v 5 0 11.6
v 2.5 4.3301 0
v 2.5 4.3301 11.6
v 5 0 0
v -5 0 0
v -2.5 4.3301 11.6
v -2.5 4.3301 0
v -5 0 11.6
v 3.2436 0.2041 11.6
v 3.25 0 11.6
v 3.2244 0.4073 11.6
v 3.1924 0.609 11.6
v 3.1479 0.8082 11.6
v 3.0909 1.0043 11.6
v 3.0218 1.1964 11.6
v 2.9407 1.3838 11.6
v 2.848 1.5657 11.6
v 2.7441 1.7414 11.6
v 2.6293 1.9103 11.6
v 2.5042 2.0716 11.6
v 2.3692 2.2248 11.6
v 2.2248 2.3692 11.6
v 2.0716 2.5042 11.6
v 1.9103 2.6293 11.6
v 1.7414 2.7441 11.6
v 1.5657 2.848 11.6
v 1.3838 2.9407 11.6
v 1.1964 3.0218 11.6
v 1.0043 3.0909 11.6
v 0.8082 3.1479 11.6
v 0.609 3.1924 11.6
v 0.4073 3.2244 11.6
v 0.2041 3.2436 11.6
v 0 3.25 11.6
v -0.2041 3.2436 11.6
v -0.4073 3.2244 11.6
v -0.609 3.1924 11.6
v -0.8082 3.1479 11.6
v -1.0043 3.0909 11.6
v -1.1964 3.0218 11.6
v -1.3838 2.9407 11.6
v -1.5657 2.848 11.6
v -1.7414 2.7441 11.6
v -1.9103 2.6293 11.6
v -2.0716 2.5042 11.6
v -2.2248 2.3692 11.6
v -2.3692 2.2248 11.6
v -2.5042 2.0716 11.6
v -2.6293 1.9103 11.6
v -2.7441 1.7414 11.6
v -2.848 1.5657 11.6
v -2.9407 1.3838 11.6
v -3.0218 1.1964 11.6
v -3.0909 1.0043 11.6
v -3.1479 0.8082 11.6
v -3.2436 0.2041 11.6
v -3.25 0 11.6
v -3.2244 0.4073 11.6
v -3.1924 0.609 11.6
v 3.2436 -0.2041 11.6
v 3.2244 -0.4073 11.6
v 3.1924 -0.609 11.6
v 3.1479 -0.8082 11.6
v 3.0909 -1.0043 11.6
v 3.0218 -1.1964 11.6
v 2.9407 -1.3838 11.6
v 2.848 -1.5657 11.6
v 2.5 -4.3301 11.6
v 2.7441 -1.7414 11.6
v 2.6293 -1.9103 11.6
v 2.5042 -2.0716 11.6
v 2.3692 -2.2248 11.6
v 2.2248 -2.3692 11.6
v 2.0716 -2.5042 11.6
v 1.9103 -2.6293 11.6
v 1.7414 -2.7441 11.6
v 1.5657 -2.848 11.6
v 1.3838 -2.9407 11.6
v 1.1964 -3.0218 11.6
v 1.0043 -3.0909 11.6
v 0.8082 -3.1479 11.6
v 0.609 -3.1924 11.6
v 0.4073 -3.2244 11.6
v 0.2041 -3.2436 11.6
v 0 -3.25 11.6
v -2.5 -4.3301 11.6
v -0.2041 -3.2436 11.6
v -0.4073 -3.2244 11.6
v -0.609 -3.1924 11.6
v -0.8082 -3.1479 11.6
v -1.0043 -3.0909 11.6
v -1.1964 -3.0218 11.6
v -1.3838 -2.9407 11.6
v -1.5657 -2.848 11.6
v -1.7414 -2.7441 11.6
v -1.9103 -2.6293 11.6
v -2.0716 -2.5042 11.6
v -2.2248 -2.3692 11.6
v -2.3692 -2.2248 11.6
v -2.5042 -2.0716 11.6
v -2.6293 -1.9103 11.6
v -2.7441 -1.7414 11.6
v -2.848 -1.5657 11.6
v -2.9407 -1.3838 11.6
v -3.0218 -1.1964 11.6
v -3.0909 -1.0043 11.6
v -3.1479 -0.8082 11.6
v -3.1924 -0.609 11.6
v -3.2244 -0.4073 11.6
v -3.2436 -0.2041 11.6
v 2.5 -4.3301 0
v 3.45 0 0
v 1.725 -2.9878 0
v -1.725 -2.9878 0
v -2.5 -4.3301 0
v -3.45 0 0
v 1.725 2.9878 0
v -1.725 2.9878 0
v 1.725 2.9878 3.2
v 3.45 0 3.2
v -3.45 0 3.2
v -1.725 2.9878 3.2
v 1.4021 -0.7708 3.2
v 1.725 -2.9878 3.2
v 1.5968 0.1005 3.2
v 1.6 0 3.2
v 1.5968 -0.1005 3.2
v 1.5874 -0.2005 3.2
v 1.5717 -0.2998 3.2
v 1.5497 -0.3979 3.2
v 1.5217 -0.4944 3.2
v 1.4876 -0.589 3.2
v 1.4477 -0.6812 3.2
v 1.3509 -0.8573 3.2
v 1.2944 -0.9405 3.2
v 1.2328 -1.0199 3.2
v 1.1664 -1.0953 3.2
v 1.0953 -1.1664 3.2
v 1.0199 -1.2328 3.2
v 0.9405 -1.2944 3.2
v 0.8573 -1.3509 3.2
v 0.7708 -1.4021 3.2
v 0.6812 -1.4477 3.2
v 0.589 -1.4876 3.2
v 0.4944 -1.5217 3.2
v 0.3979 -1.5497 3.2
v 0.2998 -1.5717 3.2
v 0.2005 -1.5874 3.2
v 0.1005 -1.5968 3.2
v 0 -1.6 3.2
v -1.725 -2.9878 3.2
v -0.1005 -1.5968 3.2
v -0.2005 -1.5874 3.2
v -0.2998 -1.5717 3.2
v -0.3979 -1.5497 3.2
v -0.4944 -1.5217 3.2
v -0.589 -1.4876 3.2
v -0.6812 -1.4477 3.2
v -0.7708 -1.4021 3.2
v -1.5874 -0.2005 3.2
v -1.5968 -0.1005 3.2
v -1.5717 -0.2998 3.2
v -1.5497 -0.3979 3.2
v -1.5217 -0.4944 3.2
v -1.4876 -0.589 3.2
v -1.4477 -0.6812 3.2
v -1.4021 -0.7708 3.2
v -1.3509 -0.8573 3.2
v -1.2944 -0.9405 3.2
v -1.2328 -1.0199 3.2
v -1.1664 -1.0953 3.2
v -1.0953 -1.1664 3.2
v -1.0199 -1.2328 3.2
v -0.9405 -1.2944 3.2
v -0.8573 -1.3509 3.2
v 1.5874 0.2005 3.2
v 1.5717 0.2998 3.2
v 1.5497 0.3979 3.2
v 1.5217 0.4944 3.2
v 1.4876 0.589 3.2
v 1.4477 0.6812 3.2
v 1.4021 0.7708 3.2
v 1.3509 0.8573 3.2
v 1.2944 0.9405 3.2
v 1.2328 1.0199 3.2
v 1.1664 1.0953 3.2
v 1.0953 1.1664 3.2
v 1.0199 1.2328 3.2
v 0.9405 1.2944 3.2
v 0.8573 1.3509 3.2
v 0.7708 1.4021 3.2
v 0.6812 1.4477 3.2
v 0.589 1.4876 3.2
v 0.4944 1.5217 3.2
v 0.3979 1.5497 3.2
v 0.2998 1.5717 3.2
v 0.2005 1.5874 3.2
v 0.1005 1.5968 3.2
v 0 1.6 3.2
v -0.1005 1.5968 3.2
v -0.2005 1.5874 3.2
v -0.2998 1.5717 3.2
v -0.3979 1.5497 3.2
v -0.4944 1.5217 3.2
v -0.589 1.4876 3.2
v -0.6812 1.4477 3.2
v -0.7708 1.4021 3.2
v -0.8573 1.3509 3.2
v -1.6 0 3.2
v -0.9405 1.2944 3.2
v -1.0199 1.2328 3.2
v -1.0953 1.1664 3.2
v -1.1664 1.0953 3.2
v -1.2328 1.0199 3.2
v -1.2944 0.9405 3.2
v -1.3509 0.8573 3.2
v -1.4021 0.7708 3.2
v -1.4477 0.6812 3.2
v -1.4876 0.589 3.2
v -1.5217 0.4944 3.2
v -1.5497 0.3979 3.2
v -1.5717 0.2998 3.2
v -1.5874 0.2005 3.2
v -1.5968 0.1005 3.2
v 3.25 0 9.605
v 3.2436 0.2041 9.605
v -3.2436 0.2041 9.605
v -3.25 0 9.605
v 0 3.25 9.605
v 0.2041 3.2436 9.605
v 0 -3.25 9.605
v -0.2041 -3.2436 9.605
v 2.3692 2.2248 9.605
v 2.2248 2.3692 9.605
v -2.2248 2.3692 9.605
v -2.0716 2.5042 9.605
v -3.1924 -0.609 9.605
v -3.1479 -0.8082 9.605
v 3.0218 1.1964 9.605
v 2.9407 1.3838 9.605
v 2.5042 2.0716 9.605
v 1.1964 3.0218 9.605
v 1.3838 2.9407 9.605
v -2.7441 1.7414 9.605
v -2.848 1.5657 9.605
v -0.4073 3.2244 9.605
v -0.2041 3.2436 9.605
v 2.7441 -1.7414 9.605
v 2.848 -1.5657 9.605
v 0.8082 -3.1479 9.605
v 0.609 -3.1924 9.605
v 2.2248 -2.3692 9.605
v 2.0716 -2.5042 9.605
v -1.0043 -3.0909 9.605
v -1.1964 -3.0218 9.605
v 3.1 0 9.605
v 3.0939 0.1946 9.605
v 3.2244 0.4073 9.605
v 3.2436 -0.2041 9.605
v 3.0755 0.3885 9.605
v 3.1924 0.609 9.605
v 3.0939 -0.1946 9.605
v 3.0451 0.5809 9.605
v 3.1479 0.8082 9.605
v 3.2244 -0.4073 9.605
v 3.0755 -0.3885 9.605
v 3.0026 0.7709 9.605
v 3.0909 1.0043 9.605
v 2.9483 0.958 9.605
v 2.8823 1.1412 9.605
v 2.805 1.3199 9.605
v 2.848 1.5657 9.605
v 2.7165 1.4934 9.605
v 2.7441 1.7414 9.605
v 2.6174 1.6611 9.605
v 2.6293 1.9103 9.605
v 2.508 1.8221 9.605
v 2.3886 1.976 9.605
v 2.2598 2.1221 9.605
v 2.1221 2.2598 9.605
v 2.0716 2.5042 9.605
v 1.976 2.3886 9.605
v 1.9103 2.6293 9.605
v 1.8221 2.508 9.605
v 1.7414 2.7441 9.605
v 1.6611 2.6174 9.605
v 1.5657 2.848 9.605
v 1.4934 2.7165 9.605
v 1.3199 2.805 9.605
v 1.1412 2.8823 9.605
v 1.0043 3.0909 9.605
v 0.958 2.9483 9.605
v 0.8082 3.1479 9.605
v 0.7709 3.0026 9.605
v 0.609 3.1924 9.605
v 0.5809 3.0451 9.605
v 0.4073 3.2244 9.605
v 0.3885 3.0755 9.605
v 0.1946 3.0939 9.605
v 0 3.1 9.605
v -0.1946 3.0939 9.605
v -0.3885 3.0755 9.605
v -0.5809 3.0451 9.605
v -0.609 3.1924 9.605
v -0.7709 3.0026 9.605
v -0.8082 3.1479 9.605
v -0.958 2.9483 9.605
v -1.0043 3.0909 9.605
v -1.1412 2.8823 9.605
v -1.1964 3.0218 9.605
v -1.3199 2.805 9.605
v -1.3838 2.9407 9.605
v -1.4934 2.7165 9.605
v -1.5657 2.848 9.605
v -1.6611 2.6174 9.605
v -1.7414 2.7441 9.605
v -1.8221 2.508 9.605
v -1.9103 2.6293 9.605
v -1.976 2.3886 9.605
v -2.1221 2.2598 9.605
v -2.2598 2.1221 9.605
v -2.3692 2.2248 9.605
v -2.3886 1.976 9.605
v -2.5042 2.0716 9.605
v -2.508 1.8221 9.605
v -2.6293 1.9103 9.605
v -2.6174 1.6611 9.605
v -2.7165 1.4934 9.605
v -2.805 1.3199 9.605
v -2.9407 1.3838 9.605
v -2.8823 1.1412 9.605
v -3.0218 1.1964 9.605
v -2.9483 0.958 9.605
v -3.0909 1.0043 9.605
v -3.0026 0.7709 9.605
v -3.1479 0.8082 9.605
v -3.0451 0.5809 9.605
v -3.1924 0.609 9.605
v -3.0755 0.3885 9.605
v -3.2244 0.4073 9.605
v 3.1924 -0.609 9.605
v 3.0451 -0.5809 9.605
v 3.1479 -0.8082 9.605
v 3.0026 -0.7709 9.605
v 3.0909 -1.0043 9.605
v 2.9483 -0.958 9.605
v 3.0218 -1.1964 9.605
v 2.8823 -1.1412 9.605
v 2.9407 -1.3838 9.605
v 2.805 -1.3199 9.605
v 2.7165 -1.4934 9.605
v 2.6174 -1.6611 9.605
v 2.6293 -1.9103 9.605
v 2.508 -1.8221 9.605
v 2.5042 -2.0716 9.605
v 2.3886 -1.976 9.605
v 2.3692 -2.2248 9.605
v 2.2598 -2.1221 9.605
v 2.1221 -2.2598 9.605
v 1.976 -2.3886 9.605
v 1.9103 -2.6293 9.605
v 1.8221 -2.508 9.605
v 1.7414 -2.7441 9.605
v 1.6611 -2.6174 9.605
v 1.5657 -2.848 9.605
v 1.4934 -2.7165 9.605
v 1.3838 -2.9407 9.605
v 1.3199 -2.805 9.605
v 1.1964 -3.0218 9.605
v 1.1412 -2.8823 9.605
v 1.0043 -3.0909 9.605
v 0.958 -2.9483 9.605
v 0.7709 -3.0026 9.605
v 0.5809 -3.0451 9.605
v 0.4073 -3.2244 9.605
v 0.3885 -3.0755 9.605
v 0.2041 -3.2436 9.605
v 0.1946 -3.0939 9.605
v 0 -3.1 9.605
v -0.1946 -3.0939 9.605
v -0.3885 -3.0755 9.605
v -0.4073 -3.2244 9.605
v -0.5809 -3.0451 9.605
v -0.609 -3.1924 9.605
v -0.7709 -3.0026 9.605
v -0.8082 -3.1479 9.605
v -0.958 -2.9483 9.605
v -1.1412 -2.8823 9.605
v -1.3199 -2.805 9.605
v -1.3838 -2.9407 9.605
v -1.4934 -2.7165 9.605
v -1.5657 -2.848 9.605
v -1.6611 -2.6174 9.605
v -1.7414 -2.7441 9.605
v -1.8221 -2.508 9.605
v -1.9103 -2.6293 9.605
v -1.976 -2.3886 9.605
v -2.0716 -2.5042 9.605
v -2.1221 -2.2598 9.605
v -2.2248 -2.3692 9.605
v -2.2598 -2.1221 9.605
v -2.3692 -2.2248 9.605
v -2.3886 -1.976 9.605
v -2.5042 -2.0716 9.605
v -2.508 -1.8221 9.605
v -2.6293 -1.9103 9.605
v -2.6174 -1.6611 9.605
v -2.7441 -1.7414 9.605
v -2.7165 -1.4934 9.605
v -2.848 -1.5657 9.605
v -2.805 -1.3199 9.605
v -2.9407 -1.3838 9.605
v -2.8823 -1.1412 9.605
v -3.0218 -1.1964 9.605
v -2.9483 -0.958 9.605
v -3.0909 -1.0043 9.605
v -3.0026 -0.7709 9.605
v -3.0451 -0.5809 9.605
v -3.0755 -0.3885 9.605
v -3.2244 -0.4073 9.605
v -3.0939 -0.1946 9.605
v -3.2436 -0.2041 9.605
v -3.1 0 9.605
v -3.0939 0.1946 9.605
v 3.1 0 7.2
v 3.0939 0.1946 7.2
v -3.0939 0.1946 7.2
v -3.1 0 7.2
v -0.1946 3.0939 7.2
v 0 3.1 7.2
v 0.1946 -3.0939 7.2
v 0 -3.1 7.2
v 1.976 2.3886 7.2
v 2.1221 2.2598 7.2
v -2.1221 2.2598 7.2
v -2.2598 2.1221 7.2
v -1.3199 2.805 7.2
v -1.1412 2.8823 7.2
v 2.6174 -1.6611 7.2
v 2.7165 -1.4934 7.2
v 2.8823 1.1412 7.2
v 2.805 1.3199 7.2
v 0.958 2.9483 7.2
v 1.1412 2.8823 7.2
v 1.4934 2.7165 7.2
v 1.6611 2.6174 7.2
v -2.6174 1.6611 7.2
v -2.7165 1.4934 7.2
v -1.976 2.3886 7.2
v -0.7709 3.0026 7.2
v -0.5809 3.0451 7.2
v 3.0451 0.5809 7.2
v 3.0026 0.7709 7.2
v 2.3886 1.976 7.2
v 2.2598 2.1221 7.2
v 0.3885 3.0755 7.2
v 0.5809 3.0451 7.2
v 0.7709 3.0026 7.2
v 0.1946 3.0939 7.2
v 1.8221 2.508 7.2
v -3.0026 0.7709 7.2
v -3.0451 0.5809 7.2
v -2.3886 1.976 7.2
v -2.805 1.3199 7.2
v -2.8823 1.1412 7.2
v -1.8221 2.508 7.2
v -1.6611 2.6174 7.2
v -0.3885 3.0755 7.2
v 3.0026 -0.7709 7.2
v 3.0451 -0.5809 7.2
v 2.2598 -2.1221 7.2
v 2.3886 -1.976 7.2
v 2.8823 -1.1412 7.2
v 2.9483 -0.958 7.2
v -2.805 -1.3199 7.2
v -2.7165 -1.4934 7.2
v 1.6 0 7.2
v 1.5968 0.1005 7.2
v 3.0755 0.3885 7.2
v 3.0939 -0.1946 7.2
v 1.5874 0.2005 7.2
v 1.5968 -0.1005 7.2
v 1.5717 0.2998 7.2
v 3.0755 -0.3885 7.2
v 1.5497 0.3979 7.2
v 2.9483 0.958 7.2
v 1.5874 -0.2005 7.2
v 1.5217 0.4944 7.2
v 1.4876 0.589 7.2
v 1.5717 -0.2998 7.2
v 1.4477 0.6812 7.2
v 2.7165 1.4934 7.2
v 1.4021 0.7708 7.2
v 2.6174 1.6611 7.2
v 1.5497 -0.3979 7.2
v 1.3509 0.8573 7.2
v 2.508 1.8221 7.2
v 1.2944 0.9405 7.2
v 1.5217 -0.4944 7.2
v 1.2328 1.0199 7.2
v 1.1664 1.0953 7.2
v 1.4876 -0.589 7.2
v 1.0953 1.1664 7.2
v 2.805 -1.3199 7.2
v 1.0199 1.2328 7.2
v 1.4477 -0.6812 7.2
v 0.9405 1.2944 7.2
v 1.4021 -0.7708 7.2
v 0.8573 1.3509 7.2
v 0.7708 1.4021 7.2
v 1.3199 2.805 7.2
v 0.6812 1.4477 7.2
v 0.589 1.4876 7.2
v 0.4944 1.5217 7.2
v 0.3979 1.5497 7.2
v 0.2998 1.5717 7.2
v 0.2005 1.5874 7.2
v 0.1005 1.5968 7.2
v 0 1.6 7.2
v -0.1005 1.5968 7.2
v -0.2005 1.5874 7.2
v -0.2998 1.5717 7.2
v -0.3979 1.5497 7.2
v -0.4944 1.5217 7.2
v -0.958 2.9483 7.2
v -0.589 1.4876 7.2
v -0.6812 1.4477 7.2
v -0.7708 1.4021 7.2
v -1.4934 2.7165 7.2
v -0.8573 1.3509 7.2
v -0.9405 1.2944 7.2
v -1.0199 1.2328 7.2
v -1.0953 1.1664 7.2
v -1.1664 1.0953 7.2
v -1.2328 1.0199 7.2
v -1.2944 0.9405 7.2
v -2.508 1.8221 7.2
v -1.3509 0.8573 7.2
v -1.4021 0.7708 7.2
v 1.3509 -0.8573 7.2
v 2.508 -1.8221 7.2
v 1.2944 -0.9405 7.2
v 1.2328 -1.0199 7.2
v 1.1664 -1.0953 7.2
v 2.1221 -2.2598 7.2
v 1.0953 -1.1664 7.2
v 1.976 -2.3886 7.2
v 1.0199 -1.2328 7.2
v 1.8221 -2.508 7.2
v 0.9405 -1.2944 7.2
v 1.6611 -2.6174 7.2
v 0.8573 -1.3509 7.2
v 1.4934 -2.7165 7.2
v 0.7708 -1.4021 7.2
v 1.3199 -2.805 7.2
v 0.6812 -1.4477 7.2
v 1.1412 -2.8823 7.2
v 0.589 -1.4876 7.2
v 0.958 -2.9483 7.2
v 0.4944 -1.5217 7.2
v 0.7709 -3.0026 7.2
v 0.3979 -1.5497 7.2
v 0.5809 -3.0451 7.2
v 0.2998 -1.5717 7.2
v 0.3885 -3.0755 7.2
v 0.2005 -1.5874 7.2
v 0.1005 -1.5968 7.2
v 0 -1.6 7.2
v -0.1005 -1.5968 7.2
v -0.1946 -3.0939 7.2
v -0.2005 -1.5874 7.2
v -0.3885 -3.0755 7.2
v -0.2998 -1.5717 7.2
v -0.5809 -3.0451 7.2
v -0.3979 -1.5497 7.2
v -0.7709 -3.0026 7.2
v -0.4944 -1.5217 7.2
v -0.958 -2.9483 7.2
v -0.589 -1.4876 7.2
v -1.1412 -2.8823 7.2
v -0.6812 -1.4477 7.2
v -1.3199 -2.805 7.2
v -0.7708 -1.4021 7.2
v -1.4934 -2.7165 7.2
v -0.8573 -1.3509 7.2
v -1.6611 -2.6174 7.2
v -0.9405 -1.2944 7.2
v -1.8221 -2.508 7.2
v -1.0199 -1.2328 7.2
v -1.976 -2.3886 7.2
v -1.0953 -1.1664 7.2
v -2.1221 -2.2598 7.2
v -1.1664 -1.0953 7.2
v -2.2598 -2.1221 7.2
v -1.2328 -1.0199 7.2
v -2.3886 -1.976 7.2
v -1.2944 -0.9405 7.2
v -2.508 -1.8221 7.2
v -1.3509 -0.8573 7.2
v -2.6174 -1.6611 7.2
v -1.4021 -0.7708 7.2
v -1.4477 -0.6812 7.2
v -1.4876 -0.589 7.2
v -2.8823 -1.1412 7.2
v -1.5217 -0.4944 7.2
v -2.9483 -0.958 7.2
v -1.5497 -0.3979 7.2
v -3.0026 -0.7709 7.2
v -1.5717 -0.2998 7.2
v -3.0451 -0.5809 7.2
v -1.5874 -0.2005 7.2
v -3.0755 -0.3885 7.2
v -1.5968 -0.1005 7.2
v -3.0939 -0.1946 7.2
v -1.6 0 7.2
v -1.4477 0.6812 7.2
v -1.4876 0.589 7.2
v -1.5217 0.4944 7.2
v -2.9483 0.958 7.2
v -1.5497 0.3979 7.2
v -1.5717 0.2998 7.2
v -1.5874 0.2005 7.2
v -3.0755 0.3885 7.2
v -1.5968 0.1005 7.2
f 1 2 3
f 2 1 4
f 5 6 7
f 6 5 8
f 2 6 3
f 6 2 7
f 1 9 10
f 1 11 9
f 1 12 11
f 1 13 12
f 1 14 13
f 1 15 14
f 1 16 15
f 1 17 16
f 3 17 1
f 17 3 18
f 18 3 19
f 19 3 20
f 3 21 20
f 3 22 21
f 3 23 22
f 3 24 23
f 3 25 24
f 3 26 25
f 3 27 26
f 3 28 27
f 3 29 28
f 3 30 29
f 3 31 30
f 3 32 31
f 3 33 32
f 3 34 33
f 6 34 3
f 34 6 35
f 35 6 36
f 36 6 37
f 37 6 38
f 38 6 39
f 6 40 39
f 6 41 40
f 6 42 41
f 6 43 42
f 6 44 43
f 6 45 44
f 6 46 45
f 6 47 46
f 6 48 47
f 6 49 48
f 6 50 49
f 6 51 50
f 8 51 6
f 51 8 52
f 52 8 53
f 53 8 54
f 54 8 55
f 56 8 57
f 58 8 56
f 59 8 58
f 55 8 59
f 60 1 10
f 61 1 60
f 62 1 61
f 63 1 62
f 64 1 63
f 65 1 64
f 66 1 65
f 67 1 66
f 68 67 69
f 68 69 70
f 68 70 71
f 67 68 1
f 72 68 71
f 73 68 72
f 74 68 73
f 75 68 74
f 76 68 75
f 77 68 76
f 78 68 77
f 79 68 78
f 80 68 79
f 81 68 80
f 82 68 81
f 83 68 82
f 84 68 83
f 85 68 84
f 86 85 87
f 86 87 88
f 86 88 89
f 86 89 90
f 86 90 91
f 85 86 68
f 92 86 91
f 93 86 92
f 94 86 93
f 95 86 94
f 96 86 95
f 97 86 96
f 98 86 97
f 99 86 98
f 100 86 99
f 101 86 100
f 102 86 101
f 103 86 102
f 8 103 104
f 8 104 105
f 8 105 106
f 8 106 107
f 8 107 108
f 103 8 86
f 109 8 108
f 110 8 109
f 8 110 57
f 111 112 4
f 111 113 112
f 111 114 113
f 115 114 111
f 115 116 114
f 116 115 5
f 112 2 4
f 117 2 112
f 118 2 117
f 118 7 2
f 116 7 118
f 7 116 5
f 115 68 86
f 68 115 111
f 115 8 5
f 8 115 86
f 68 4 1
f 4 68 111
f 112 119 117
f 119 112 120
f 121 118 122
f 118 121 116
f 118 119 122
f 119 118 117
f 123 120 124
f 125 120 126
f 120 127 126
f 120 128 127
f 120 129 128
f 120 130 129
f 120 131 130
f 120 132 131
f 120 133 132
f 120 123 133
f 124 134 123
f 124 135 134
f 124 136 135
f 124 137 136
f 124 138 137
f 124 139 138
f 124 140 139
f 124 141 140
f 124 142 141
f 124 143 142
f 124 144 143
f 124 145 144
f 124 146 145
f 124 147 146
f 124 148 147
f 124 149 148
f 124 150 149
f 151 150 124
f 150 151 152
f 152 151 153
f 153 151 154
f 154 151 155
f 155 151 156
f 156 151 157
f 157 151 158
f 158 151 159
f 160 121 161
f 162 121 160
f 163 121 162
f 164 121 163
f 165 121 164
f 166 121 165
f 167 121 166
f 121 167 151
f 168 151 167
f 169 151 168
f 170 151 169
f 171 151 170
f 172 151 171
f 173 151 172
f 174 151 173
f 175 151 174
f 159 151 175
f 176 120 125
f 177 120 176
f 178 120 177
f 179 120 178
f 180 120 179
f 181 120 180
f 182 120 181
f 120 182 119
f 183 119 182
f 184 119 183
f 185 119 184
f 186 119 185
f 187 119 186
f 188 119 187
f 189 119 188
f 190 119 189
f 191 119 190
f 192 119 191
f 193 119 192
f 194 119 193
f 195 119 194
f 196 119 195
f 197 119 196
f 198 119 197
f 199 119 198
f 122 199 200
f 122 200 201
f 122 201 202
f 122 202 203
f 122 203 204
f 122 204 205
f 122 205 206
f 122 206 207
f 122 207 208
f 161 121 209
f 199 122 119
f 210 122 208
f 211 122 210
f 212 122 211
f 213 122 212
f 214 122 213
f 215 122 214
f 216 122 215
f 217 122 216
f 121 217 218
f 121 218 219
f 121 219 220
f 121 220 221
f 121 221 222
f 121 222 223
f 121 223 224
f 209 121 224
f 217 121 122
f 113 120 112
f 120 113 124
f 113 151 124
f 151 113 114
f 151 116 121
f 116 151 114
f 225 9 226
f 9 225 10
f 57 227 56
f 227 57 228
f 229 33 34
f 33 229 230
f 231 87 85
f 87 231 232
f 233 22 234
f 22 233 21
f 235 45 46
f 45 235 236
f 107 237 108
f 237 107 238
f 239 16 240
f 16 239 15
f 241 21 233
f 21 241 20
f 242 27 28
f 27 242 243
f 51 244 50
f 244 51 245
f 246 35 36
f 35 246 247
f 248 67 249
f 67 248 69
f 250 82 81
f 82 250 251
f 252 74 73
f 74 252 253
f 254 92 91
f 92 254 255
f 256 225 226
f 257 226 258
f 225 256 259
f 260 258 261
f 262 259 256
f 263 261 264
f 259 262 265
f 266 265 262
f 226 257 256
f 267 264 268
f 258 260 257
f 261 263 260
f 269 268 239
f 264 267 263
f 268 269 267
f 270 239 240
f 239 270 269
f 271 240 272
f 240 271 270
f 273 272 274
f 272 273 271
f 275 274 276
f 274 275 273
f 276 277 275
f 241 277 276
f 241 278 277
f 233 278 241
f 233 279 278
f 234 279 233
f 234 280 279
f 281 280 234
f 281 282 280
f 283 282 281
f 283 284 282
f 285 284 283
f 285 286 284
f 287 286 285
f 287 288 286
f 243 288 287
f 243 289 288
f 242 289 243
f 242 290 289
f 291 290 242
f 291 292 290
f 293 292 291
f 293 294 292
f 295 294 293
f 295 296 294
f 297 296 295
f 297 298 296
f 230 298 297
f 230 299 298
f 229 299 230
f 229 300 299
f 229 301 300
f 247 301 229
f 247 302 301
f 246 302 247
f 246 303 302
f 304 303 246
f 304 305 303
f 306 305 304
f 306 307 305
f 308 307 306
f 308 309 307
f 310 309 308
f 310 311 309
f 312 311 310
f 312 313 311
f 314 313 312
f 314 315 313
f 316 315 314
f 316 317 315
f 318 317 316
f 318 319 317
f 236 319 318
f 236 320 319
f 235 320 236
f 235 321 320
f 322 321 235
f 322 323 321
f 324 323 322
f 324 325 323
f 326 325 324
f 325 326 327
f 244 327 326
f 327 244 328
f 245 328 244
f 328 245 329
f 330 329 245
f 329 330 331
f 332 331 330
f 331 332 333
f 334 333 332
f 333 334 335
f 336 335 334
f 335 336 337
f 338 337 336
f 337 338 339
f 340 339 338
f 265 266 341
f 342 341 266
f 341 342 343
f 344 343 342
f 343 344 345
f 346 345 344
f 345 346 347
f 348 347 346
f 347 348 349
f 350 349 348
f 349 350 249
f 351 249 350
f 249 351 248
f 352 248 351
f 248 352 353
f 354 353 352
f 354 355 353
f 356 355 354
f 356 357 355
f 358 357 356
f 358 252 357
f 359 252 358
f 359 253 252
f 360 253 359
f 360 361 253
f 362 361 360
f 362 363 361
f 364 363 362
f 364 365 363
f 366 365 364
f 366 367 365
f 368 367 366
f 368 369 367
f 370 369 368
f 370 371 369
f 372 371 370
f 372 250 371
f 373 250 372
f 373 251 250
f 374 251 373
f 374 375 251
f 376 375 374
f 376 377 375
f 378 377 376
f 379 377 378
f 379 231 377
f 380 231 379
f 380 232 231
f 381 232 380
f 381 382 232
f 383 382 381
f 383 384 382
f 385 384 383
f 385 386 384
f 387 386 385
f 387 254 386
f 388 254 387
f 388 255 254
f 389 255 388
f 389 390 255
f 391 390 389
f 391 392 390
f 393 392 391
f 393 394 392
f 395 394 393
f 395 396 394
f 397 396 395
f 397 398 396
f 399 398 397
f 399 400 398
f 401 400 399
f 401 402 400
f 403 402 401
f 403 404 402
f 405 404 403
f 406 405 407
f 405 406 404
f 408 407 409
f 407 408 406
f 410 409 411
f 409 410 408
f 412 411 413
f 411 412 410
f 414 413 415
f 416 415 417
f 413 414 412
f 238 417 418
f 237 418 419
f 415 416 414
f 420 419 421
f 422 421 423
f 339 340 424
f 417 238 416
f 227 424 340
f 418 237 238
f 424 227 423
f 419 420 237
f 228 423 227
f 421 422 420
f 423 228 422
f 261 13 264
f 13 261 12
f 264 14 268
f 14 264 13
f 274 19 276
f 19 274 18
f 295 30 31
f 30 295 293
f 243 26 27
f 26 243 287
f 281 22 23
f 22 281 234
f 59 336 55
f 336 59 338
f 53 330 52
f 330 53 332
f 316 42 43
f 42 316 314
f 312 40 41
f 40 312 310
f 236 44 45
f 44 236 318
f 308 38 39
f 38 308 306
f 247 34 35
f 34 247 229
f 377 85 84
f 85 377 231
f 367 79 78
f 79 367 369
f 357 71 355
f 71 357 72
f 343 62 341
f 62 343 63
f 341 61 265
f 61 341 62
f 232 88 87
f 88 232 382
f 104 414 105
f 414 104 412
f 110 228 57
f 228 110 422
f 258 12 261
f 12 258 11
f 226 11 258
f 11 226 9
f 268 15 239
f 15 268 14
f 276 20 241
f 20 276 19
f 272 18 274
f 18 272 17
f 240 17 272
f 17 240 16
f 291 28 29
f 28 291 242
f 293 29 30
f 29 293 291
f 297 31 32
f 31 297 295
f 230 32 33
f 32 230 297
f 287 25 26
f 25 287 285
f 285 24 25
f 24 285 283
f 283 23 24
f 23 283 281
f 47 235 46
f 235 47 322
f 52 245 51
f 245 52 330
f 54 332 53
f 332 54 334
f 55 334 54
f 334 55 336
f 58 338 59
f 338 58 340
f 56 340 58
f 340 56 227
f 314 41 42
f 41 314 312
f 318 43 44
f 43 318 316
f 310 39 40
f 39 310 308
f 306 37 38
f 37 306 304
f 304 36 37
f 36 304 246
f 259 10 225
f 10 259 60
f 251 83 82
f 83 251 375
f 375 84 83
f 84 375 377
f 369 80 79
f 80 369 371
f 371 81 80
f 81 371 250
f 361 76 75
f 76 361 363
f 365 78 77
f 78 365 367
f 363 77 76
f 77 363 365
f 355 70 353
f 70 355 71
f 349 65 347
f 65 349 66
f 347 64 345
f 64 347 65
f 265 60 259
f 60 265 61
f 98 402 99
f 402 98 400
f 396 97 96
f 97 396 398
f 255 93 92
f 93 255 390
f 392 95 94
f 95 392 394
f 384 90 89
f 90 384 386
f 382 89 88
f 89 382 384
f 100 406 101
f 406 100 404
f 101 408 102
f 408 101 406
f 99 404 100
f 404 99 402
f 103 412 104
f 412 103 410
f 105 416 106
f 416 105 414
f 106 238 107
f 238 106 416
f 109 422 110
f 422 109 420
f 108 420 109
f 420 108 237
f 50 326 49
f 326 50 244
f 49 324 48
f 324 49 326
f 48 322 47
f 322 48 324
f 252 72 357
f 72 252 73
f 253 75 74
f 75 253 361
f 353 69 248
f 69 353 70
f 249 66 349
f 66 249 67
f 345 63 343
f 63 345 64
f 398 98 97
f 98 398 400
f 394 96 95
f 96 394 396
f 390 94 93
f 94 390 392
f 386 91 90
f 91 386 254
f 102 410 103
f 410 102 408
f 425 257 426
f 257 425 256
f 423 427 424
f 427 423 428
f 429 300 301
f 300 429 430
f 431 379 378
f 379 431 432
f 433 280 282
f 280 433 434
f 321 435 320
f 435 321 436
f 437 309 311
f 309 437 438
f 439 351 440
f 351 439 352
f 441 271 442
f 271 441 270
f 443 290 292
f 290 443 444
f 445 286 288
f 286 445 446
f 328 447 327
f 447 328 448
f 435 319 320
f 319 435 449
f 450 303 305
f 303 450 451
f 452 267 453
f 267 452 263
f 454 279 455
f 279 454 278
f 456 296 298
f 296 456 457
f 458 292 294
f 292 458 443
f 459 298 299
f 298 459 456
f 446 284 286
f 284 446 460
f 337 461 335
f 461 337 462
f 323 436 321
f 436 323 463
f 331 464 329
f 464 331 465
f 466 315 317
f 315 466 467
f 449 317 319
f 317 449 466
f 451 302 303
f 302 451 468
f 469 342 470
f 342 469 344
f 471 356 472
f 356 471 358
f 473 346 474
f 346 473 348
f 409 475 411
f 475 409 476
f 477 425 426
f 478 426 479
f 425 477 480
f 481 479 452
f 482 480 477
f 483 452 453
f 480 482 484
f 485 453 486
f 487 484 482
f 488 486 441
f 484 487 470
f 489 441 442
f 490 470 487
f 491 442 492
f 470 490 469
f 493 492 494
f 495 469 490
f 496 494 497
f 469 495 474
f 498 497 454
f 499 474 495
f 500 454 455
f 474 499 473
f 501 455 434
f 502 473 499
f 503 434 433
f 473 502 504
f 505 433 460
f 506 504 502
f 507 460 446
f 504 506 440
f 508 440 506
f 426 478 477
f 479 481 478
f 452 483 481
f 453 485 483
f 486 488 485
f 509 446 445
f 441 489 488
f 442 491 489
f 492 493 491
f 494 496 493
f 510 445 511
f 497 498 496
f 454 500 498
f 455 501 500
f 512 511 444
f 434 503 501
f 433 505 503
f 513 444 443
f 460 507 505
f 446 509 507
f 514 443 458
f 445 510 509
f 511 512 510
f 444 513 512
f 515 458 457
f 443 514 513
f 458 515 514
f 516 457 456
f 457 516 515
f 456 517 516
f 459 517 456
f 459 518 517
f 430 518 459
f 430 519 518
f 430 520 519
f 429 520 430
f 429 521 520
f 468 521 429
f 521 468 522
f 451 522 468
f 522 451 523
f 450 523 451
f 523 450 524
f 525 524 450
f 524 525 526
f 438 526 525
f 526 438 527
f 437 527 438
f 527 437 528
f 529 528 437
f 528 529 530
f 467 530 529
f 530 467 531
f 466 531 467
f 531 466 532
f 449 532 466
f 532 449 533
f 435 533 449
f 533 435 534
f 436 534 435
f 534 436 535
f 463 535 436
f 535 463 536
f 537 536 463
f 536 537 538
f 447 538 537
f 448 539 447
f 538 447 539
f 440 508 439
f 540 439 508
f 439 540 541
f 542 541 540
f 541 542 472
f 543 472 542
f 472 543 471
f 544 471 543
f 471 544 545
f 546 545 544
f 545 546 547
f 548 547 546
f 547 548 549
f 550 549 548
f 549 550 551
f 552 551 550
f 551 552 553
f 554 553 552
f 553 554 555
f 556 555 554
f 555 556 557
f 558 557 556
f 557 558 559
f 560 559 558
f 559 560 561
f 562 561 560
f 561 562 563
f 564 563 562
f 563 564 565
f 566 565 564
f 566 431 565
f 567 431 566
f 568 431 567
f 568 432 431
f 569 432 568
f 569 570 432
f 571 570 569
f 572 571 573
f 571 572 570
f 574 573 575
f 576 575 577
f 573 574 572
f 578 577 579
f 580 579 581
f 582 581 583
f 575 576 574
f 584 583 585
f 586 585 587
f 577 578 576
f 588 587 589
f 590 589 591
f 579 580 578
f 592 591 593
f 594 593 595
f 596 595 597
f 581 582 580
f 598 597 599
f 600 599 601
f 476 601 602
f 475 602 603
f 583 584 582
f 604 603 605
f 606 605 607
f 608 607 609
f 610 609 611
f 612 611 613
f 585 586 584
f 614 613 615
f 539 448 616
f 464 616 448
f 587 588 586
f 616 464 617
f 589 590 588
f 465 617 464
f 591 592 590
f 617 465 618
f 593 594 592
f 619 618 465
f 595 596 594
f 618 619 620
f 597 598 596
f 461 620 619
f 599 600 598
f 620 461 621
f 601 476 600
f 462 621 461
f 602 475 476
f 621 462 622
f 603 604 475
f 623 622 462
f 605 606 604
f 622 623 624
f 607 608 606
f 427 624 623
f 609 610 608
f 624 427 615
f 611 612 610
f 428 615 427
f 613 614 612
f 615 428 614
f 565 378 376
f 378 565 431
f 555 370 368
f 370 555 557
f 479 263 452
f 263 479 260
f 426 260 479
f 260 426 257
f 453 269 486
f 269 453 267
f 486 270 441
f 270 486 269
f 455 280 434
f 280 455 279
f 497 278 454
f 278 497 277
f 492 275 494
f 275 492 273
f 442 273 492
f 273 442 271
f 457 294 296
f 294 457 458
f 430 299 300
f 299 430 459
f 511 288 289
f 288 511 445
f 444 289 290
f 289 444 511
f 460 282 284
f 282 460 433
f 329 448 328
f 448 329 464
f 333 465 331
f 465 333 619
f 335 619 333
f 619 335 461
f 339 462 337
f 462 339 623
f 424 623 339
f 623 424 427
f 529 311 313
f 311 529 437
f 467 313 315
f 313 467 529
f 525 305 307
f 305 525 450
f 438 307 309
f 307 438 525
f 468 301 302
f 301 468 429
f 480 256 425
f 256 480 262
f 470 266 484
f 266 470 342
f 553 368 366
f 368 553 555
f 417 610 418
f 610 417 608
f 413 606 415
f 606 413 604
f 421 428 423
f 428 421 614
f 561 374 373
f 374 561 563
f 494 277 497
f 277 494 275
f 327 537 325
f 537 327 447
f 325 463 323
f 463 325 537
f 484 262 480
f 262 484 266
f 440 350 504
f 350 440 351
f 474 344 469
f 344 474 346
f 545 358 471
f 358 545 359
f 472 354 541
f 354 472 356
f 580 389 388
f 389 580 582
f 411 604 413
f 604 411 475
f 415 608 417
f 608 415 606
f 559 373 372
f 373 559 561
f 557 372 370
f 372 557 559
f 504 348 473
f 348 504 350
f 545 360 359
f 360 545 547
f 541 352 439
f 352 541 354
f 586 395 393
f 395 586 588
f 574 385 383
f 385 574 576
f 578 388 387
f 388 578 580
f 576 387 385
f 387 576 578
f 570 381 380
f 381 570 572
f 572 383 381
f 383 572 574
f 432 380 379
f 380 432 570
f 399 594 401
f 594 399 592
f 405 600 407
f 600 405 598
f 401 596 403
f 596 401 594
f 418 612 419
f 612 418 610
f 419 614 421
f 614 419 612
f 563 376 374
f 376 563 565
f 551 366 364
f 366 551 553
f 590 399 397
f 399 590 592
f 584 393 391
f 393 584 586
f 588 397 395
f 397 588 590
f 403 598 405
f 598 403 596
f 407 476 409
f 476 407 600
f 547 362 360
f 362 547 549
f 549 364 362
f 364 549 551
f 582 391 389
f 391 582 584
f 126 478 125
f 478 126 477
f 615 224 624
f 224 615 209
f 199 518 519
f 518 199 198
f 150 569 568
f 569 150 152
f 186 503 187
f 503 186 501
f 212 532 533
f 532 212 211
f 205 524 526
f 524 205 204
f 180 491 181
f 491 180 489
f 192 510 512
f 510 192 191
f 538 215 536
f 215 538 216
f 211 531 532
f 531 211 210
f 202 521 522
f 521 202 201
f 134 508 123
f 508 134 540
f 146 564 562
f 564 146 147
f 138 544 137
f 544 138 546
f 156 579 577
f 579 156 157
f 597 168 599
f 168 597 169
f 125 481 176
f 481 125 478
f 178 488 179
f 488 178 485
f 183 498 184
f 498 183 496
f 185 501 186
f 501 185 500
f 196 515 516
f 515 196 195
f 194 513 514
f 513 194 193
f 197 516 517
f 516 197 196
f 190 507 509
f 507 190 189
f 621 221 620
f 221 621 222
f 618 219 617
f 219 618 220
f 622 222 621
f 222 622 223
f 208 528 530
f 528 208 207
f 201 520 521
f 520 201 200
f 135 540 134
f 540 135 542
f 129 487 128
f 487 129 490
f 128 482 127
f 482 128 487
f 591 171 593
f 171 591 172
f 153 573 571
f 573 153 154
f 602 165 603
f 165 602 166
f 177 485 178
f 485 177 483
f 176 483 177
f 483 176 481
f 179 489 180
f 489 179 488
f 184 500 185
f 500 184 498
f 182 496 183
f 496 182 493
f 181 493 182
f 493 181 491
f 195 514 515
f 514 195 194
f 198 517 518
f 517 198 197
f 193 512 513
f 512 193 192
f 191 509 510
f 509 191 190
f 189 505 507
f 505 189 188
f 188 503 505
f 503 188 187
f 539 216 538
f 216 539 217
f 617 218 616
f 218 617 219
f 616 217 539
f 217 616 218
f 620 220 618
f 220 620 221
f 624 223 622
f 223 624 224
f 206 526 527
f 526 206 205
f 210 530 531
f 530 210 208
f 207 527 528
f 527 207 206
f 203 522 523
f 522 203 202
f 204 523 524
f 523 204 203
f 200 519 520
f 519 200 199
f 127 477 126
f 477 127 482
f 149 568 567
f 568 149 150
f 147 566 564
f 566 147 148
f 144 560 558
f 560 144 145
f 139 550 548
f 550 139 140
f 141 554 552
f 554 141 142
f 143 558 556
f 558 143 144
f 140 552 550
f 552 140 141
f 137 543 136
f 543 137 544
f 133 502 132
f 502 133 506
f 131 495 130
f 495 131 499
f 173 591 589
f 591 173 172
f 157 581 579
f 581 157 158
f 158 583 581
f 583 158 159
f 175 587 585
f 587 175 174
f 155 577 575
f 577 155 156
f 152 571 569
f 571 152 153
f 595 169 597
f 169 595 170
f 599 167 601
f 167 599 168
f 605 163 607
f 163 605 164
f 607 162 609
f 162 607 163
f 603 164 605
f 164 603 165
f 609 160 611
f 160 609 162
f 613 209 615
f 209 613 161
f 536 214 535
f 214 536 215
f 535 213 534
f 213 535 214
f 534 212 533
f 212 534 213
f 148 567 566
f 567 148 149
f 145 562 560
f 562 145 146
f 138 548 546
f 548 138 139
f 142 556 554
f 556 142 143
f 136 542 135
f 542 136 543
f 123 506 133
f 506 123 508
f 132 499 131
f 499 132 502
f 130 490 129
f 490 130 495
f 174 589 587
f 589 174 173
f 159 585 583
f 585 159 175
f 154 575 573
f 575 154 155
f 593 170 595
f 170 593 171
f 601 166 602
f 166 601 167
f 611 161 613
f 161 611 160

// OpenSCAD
// file: WINDGAUGE02A_R05.scad
$fn=40; // model faces resolution.
include <../configuration.scad>

module WINDGAUGE02A_R05(vyska_pod_magnetem,magnet_zapusteni,magnet_prumer,vyska_hlavy_sroubu,prumer_hlavy_sroubu,prumer_sroubu,vyska_matky,sirka_matky,R05_sirka_matky,S01_sila_materialu)
    {
        //setihrana matice
          difference()
        {
        //zakladni material
            cylinder (h = 2*S01_sila_materialu+vyska_hlavy_sroubu+magnet_zapusteni+vyska_matky, r= R05_sirka_matky/2, $fn=6);
            
         //dira na matku   
    cylinder (h = vyska_matky+0.2, r= (sirka_matky+0.2)/2, $fn=6);
            
       
  
        //otvor pro magnet    
            translate([0,0,(2*S01_sila_materialu+vyska_hlavy_sroubu+magnet_zapusteni+vyska_matky)-magnet_zapusteni/2+0.01])    
                cylinder (h = magnet_zapusteni+0.01, r=((magnet_prumer+0.2)/2), center = true, $fn=100);     
   
        //zapusteni uchytného sroubu   
            translate([0,0,(2*S01_sila_materialu+vyska_hlavy_sroubu+magnet_zapusteni+vyska_matky)-vyska_hlavy_sroubu/2+0.1])    
                cylinder (h = vyska_hlavy_sroubu+1, r=((prumer_hlavy_sroubu+0.2)/2), center = true, $fn=100); 

        //otvor pro sroub
        translate([0,0,(2*S01_sila_materialu+vyska_hlavy_sroubu+magnet_zapusteni+vyska_matky)/2+0.1])     
            cylinder (h = (2*S01_sila_materialu+vyska_hlavy_sroubu+magnet_zapusteni+vyska_matky)+0.1, r=(prumer_sroubu)/2, center = true, $fn=100);     
        }
    }



WINDGAUGE02A_R05(vyska_pod_magnetem,magnet_zapusteni,magnet_prumer,vyska_hlavy_sroubu,prumer_hlavy_sroubu,prumer_sroubu,vyska_matky,sirka_matky,R05_sirka_matky,S01_sila_materialu);

 
// file: ../configuration.scad
$fn=40; // model faces resolution.

//OBECNE PARAMETRY 
//----------------------------------------------------------------
//----------------------------------------------------------------

//Obecné parametry
prumer_osicky=3;
prumer_pomocne_trubicky=8;
zapusteni_pomocne_trubicky=3;
vule_mezi_statorem_rotorem=3; //vůle mezi statorem a rotorem + sila materialu statoru

//rozmery modulu se senzorem
senzor_delka=20.32;
senzor_sirka=10.16;
senzor_vyska_IO=2;
senzor_odstup_od_magnetu=1;

//lozisko
lozisko_prumer_vnitrni=4.9;
lozisko_prumer_vnejsi=16;
lozisko_vyska=5;
lozisko_prekryv=1.5;

//magnet
magnet_prumer=6.3;
magnet_vyska=5;
magnet_zapusteni=2;
magnet_tolerance_prumeru=0.2;


//parametry sroubu
prumer_sroubu=3.2;
prumer_hlavy_sroubu=6;
vyska_hlavy_sroubu=4;
vyska_matky=3;
sirka_matky=6.7;

sirka_matky_tol=0.175;
prumer_orechu=10;


//WINDGAUGE02A_S01
S01_vyska=5;




//WINDGAUGE02A_L01 //pro lopatku
L01_hloubka_zapusteni=3;
L01_hloubka_zapusteni_drzaku=3;
L01_sila_zapusteni_drzaku=3; //sila drzaku který je v rotoru
L01_hrana_drzaku_a=10;
L01_hrana_drzaku_b=3;
L01_tolerance_drzaku=0.1;
L01_delka_uchytu=20;
L01_prumer_lopatky=40;
L01_sila_materialu_lopatky=0.9;

//WINDGAUGE02A_D01 //uchyt velky
D01_material_pod_zavitem=10;
D01_material_za_zavitem=5;
D01_material_pred_zavitem=5;
D01_delka_tyce=40;
D01_sirka_tyce=20;



//WINDGAUGE02A_D02 //uchyt na sloup
D02_sila_materialu=4;
D02_vyska_uchytky=40;
D02_prumer_obruby=28;
D02_delka_celeho_uchytu=70;
D02_dotahova_vzdalenost=1.5;
D02_prumer_uchytneho_sroubu=6.2;





//WINDGAUGE02A_R01 //rotor s prekritim statoru
R01_vyska_preryti_statoru=10;
R01_sila_materialu_pro_prekriti=1.3;

//WINDGAUGE02A_R02 //rotor spodni dil

R02_sila_mateiralu_pod_lopatkami=1.3;
R02_vzdalenost_mezi_uchyty_lopatek=10;

//WINDGAUGE02A_R03 //kryt rotoru
R03_sila_materialu=1.3;

//WINDGAUGE02A_R05 //drzak magnetu
R05_sirka_matky=10;

//WINDGAUGE02A_S01 //stator
S01_sila_materialu=1.3;
S01_vyska_zuzene_casti=20;
S01_vyska_komponentu_na_lozisko=7;
S01_vyska_zavitu_na_nasroubovani_drzaku=15;
S01_vyska_na_elektroniku=35;
S01_prumer_zavitu=64;
S01_tolerance_zavit=1.5;
S01_hloubka_zavitu=4;
S01_vyska_prechodu=20;











//kryt rotoru
sila_materialu_krytu=1;


//stator1
stator1_sila=2;

//stator2
sila_pod_loziskem=1;

//stator3
stator3_sila_steny=2;
stator3_vzdalenost_od_steny=1; //definuje vzdalenost hlavy sroubu od steny statrou 4
stator3_vyska=60;
stator3_vyska_prekryti=10;

//uchyt pro anemometr
uchyt_prumer_sroubu=3.2;
roztec_sroubu=10.16;


//nastevní rotoru2

vzdalenost_rot_stat=2; //vzdálenost mezi statorem a rotorem uvnitř(osa Z)
vzdalenost_rot_stat2=1.5;//vzdálenost mezi statorem a rotorem (osa Z)





//lopatka
hloubka_uchytu=20;
sila_uchytu=12;
vyska_uchytu=10;
tolerance_uchytu=0.2;
delka_uchytu_lopatky=20;
hrana_uchytu_lopatky=4; 
prumer_lopatky=50;
sila_materialu_lopatky=0.8;

//parametry uchytu senzoru
roztec_der=10.16;
vzdalenost_der_x=2*roztec_der;
vzdalenost_der_y=1*roztec_der;

//magnet
magnet_prumer=6.3;
magnet_vyska=5;
magnet_zapusteni=2;
vyska_pod_magnetem=5;

//rotor2
delka_hridele=5; //delka hridele koukající ve statoru

//rotor2
vyska_kryti=stator1_sila+vyska_matky+vzdalenost_rot_stat+stator3_vyska_prekryti-vzdalenost_rot_stat2; //udává výšku krycího prstence


vule1=1.5; //vůle mezi statorem a rotorem ze vnitř (z boku)




//uchyt pro anemometr
uchyt_prumer_sroubu=3.2;
roztec_sroubu=20;

//stator 4
vyska_stator4=5;
uchyt_vyska_matky=3;
uchyt_prumer_orechu=10;

//parametr kabelu
kabel_prumer=10;
// main file
$fn=100; // model faces resolution.
include <../configuration.scad>

use <../SRC/WINDGAUGE02A_R05.scad>




translate([0,0,0])

rotate([0,0, 0])

WINDGAUGE02A_R05(vyska_pod_magnetem,magnet_zapusteni,magnet_prumer,vyska_hlavy_sroubu,prumer_hlavy_sroubu,prumer_sroubu,vyska_matky,sirka_matky,R05_sirka_matky,S01_sila_materialu);   
